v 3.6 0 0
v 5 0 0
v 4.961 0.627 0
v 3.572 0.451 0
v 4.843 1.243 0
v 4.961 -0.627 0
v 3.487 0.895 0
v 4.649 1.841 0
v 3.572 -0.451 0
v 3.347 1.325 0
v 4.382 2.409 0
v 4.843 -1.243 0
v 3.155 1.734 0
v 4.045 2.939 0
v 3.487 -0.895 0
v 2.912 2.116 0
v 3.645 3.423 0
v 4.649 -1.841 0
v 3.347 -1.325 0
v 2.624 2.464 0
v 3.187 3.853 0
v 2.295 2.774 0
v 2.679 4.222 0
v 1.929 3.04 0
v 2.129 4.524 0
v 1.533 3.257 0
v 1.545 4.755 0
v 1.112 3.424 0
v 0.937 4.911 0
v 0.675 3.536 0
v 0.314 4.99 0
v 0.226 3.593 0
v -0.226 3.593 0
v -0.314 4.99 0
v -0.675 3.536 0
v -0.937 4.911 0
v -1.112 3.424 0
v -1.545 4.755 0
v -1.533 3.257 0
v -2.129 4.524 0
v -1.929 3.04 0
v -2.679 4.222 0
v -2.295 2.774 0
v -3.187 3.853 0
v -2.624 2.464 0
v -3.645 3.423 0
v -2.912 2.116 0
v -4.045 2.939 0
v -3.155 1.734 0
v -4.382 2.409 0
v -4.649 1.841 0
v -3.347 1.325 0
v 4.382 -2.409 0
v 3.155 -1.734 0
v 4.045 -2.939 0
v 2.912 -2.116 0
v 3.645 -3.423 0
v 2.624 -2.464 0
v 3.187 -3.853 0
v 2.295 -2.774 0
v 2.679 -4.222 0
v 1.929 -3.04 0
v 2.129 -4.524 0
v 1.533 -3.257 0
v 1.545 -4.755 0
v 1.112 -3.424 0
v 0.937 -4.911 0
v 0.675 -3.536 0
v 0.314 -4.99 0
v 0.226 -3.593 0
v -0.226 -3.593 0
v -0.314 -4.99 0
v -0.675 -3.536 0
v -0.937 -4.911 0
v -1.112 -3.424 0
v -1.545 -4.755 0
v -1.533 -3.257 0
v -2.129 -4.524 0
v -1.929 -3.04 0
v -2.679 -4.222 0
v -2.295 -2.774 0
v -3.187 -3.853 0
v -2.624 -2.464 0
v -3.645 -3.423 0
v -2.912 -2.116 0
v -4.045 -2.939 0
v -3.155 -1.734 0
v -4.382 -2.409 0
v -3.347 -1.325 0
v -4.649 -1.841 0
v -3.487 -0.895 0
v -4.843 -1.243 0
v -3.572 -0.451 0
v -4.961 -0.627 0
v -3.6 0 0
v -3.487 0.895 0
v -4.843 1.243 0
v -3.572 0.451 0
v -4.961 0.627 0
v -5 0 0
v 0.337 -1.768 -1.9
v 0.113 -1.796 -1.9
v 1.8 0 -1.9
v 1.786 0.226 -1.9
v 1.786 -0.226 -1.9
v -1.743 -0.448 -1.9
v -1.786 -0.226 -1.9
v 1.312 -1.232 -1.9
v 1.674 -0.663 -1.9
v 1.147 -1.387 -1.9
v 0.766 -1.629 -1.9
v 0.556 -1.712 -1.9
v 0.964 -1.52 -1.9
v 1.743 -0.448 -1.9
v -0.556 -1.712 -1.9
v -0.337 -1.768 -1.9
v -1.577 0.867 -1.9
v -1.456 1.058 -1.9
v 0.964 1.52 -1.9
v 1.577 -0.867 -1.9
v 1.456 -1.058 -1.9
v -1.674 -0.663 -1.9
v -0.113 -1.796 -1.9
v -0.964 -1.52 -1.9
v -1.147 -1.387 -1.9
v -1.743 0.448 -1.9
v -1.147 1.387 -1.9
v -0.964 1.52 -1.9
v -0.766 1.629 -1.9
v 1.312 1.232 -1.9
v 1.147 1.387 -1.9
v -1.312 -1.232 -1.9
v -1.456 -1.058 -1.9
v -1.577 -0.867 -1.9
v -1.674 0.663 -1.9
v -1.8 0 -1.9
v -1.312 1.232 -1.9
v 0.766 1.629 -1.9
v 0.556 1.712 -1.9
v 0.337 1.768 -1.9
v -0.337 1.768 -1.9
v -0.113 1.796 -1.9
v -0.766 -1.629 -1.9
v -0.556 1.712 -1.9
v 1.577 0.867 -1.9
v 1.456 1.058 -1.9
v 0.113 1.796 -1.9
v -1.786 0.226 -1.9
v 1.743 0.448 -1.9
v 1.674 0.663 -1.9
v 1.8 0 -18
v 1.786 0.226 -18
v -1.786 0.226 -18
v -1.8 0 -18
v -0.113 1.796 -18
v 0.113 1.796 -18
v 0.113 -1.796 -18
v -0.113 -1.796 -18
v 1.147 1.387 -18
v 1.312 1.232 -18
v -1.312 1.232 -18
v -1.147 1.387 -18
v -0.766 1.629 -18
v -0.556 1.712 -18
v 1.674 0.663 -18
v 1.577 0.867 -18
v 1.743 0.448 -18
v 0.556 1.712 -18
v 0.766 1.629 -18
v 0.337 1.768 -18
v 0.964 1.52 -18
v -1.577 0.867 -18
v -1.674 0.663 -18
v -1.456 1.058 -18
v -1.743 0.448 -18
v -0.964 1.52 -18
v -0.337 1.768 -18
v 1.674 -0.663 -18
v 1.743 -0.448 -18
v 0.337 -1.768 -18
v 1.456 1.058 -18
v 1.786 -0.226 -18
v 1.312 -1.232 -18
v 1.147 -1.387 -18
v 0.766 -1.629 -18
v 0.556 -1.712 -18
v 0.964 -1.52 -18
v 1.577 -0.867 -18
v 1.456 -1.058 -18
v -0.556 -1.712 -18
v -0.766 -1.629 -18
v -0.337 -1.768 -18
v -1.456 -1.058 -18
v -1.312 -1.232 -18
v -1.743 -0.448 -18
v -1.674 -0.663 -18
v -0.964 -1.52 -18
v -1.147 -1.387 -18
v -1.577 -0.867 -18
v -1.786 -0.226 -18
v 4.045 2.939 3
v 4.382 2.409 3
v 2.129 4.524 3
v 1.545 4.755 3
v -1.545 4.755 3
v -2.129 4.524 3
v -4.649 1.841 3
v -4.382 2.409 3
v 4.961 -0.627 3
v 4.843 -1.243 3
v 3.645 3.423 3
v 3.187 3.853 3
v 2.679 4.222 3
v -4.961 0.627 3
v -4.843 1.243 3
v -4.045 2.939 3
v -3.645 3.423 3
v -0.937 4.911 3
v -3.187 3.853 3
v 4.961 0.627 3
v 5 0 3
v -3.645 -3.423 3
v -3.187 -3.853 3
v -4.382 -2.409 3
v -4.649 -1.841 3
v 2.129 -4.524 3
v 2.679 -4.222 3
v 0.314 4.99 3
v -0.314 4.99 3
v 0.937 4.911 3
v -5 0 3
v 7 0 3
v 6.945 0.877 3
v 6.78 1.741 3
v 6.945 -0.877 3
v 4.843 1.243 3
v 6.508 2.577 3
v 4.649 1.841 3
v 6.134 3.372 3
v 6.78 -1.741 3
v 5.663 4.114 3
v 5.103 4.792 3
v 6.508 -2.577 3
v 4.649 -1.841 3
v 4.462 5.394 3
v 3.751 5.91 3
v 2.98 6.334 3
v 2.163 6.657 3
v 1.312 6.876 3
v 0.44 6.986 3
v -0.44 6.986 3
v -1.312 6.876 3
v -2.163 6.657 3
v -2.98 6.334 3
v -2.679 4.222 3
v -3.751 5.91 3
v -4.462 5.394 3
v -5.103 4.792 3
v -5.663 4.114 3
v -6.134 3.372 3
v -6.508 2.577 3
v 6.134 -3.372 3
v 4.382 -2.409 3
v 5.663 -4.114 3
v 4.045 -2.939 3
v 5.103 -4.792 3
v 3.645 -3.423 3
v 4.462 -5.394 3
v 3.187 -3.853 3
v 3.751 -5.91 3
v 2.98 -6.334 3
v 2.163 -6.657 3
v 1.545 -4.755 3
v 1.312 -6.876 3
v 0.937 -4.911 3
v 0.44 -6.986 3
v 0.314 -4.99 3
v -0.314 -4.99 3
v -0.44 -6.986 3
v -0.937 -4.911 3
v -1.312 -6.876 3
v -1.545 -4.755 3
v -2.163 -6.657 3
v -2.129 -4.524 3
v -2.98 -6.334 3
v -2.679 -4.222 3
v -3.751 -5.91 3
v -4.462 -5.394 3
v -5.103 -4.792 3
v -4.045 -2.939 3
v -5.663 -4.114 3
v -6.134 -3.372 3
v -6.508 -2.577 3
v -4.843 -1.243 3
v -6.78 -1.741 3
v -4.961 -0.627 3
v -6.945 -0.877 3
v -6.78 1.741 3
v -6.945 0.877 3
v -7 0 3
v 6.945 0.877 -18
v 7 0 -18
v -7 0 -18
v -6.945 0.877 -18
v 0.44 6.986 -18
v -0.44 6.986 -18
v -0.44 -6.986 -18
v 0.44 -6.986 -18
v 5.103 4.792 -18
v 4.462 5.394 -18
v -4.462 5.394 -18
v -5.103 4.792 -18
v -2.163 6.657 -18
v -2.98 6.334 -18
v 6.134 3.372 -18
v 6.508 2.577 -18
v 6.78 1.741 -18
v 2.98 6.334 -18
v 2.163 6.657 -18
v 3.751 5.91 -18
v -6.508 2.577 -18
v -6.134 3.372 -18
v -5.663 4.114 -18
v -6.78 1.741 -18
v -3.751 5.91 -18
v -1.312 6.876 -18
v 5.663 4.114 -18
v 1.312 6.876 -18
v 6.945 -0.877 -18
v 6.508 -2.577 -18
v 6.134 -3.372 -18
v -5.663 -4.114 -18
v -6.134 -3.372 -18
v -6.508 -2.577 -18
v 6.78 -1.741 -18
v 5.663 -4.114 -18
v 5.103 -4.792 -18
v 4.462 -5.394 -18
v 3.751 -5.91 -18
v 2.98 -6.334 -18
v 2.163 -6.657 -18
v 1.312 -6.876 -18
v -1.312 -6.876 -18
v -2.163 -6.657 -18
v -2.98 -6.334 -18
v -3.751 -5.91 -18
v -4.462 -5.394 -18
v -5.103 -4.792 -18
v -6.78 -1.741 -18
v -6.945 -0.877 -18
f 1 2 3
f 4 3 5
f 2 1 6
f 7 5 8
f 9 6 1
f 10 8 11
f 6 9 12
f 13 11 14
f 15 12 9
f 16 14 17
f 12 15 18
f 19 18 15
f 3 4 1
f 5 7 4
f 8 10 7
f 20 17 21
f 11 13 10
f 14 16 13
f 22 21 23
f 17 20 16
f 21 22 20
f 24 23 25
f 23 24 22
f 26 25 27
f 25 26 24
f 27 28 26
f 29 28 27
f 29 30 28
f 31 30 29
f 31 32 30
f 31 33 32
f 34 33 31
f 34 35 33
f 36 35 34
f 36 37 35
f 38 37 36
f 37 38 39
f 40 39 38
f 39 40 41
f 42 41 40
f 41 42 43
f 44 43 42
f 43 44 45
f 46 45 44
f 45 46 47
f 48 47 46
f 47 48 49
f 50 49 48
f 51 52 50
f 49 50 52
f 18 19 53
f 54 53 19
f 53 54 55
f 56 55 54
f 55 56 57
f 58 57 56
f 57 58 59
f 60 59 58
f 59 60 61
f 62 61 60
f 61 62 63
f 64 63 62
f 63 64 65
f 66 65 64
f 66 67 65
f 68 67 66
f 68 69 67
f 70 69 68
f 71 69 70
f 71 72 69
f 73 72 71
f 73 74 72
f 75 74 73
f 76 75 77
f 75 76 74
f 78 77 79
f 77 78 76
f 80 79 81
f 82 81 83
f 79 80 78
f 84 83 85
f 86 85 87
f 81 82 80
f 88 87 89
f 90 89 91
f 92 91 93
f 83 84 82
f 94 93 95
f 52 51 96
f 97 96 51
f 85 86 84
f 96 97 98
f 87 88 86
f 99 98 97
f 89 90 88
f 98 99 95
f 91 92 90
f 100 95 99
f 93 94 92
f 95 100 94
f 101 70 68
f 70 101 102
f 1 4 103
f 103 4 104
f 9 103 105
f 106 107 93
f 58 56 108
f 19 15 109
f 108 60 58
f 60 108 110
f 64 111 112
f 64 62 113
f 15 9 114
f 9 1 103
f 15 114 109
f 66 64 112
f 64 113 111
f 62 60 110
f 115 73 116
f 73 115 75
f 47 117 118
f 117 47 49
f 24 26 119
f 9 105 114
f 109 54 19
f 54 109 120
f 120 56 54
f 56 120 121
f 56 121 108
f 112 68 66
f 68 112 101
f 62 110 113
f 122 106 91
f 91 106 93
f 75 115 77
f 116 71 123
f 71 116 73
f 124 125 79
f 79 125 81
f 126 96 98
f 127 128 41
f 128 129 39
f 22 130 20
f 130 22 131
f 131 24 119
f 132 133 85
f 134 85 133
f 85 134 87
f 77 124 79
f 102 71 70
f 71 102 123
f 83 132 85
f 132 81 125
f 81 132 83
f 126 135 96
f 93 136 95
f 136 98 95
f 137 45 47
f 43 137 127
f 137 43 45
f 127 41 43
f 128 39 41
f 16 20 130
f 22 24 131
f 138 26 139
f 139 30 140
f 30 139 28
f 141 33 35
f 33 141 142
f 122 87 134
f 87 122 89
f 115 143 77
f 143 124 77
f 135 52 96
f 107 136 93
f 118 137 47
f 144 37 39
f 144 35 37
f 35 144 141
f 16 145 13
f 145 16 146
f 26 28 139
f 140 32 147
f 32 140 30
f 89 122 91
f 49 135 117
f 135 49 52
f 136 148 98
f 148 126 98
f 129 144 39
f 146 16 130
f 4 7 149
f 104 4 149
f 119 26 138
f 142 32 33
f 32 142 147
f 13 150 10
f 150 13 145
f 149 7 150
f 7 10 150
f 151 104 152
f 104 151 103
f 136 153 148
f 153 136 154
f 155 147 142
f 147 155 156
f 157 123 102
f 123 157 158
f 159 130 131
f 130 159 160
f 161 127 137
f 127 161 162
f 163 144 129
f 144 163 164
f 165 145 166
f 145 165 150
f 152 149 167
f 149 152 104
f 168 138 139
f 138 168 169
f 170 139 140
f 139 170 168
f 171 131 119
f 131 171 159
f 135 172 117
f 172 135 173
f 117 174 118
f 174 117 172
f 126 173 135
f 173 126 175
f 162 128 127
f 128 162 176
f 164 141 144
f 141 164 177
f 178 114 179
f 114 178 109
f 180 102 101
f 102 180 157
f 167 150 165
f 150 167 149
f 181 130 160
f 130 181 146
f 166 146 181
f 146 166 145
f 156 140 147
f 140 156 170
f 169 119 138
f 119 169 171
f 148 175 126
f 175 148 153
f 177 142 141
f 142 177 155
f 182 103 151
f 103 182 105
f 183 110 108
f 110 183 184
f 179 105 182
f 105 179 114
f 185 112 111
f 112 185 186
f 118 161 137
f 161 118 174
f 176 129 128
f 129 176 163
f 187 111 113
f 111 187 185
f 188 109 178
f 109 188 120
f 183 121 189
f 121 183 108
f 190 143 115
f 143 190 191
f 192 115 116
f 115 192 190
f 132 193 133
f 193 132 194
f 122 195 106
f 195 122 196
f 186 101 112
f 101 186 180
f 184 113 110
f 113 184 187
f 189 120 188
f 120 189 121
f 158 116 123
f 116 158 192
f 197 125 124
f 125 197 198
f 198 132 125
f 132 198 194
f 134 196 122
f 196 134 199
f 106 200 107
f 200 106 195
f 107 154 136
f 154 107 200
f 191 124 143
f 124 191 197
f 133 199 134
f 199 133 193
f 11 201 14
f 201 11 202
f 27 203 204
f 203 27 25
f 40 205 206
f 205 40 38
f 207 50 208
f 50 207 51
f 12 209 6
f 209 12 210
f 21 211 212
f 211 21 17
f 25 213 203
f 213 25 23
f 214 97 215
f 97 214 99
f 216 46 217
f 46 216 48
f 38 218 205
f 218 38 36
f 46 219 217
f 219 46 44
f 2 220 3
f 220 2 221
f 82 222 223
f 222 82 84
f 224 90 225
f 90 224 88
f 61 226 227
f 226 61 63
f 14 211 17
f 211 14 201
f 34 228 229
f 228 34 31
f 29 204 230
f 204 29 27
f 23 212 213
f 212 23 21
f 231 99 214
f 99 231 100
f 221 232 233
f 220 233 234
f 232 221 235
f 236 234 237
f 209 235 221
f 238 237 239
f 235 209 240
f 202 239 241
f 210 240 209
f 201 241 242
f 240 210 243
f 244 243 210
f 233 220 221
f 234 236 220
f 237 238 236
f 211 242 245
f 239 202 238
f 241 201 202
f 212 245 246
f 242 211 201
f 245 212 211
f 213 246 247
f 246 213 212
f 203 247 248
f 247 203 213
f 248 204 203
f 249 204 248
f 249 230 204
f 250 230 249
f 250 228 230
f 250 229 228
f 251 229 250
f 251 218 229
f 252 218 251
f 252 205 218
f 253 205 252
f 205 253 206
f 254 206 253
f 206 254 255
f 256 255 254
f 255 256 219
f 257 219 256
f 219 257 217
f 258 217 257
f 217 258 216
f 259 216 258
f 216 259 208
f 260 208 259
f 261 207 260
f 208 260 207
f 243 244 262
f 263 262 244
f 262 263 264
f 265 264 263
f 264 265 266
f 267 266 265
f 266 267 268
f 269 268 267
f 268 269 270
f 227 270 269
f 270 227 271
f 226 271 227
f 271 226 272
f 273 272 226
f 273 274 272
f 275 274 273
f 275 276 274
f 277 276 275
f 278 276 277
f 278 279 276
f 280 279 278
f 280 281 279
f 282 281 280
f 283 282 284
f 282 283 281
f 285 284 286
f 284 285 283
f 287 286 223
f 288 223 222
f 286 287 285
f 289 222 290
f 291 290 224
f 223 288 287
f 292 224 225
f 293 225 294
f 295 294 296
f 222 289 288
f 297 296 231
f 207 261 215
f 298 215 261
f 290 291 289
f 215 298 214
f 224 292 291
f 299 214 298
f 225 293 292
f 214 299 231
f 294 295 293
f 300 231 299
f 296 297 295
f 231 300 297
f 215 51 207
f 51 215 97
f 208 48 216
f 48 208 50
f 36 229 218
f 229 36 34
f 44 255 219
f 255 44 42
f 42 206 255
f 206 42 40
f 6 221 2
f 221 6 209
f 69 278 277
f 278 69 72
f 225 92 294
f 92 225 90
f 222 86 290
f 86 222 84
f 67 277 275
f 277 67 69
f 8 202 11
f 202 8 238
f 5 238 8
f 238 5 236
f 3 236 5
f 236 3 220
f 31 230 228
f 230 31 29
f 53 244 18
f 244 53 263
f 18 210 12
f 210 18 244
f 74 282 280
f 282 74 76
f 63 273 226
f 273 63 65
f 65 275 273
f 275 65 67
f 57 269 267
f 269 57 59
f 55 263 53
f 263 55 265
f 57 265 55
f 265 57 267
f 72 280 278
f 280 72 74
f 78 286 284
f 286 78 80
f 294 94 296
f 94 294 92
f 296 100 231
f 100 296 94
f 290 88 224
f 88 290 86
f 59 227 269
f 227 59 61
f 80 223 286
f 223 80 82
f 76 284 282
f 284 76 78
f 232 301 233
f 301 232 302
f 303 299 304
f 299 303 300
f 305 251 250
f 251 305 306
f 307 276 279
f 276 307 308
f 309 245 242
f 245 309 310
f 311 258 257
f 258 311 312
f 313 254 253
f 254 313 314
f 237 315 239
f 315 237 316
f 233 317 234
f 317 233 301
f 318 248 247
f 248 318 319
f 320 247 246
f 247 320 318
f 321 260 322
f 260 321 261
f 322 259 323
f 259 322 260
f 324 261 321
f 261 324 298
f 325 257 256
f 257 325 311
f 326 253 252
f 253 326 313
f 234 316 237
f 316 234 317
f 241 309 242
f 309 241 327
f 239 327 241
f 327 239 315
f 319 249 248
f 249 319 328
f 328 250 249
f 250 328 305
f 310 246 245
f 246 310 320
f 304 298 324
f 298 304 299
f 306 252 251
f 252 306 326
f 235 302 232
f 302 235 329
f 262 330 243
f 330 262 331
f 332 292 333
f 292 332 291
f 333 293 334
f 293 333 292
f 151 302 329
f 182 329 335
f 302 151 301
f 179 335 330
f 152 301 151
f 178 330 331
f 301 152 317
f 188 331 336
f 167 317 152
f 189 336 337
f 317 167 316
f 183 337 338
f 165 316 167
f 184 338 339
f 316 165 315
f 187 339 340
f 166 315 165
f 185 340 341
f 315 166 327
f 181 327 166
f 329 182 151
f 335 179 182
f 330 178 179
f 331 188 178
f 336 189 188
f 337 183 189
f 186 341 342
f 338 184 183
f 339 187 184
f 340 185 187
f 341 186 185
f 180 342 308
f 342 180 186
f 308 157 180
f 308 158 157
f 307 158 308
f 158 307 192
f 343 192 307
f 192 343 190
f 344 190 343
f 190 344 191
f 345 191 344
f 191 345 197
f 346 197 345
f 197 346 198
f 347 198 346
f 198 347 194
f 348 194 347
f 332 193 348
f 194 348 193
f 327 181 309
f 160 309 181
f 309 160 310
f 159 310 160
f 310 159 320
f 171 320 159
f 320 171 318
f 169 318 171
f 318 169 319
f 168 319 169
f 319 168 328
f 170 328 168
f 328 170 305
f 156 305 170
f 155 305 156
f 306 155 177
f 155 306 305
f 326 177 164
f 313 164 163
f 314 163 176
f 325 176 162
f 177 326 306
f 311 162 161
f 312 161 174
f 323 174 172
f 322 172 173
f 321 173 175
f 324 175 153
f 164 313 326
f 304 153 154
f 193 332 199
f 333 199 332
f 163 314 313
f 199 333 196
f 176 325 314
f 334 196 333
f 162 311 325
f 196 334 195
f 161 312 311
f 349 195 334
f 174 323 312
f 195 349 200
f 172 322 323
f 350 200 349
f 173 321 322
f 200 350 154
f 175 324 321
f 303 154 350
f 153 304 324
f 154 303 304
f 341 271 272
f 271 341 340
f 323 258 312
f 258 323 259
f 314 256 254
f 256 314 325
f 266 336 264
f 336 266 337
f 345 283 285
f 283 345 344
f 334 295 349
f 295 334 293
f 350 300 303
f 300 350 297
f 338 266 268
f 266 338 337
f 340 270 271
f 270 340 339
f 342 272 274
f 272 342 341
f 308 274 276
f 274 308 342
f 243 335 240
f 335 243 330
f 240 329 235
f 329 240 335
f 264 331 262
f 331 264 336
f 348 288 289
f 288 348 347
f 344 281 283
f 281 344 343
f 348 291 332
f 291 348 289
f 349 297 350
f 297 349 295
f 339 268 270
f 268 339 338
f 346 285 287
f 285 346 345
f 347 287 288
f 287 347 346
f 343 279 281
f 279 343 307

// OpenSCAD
$fn = 50;

difference() {
	union() {
		translate(v = [0, 0, -18.0]) {
			cylinder(h = 21, r = 7.0);
		}
	}
	union() {
		translate(v = [0, 0, 0]) {
			rotate(a = [0, 0, 0]) {
				difference() {
					union() {
						translate(v = [0, 0, -21.0]) {
							cylinder(h = 21, r = 1.5);
						}
						translate(v = [0, 0, -1.9]) {
							cylinder(h = 1.9, r1 = 1.8, r2 = 3.6);
						}
						translate(v = [0, 0, -21.0]) {
							cylinder(h = 21, r = 1.8);
						}
						translate(v = [0, 0, -21.0]) {
							cylinder(h = 21, r = 1.5);
						}
					}
					union();
				}
			}
		}
		#cylinder(h = 3, r = 5.0);
	}
}
